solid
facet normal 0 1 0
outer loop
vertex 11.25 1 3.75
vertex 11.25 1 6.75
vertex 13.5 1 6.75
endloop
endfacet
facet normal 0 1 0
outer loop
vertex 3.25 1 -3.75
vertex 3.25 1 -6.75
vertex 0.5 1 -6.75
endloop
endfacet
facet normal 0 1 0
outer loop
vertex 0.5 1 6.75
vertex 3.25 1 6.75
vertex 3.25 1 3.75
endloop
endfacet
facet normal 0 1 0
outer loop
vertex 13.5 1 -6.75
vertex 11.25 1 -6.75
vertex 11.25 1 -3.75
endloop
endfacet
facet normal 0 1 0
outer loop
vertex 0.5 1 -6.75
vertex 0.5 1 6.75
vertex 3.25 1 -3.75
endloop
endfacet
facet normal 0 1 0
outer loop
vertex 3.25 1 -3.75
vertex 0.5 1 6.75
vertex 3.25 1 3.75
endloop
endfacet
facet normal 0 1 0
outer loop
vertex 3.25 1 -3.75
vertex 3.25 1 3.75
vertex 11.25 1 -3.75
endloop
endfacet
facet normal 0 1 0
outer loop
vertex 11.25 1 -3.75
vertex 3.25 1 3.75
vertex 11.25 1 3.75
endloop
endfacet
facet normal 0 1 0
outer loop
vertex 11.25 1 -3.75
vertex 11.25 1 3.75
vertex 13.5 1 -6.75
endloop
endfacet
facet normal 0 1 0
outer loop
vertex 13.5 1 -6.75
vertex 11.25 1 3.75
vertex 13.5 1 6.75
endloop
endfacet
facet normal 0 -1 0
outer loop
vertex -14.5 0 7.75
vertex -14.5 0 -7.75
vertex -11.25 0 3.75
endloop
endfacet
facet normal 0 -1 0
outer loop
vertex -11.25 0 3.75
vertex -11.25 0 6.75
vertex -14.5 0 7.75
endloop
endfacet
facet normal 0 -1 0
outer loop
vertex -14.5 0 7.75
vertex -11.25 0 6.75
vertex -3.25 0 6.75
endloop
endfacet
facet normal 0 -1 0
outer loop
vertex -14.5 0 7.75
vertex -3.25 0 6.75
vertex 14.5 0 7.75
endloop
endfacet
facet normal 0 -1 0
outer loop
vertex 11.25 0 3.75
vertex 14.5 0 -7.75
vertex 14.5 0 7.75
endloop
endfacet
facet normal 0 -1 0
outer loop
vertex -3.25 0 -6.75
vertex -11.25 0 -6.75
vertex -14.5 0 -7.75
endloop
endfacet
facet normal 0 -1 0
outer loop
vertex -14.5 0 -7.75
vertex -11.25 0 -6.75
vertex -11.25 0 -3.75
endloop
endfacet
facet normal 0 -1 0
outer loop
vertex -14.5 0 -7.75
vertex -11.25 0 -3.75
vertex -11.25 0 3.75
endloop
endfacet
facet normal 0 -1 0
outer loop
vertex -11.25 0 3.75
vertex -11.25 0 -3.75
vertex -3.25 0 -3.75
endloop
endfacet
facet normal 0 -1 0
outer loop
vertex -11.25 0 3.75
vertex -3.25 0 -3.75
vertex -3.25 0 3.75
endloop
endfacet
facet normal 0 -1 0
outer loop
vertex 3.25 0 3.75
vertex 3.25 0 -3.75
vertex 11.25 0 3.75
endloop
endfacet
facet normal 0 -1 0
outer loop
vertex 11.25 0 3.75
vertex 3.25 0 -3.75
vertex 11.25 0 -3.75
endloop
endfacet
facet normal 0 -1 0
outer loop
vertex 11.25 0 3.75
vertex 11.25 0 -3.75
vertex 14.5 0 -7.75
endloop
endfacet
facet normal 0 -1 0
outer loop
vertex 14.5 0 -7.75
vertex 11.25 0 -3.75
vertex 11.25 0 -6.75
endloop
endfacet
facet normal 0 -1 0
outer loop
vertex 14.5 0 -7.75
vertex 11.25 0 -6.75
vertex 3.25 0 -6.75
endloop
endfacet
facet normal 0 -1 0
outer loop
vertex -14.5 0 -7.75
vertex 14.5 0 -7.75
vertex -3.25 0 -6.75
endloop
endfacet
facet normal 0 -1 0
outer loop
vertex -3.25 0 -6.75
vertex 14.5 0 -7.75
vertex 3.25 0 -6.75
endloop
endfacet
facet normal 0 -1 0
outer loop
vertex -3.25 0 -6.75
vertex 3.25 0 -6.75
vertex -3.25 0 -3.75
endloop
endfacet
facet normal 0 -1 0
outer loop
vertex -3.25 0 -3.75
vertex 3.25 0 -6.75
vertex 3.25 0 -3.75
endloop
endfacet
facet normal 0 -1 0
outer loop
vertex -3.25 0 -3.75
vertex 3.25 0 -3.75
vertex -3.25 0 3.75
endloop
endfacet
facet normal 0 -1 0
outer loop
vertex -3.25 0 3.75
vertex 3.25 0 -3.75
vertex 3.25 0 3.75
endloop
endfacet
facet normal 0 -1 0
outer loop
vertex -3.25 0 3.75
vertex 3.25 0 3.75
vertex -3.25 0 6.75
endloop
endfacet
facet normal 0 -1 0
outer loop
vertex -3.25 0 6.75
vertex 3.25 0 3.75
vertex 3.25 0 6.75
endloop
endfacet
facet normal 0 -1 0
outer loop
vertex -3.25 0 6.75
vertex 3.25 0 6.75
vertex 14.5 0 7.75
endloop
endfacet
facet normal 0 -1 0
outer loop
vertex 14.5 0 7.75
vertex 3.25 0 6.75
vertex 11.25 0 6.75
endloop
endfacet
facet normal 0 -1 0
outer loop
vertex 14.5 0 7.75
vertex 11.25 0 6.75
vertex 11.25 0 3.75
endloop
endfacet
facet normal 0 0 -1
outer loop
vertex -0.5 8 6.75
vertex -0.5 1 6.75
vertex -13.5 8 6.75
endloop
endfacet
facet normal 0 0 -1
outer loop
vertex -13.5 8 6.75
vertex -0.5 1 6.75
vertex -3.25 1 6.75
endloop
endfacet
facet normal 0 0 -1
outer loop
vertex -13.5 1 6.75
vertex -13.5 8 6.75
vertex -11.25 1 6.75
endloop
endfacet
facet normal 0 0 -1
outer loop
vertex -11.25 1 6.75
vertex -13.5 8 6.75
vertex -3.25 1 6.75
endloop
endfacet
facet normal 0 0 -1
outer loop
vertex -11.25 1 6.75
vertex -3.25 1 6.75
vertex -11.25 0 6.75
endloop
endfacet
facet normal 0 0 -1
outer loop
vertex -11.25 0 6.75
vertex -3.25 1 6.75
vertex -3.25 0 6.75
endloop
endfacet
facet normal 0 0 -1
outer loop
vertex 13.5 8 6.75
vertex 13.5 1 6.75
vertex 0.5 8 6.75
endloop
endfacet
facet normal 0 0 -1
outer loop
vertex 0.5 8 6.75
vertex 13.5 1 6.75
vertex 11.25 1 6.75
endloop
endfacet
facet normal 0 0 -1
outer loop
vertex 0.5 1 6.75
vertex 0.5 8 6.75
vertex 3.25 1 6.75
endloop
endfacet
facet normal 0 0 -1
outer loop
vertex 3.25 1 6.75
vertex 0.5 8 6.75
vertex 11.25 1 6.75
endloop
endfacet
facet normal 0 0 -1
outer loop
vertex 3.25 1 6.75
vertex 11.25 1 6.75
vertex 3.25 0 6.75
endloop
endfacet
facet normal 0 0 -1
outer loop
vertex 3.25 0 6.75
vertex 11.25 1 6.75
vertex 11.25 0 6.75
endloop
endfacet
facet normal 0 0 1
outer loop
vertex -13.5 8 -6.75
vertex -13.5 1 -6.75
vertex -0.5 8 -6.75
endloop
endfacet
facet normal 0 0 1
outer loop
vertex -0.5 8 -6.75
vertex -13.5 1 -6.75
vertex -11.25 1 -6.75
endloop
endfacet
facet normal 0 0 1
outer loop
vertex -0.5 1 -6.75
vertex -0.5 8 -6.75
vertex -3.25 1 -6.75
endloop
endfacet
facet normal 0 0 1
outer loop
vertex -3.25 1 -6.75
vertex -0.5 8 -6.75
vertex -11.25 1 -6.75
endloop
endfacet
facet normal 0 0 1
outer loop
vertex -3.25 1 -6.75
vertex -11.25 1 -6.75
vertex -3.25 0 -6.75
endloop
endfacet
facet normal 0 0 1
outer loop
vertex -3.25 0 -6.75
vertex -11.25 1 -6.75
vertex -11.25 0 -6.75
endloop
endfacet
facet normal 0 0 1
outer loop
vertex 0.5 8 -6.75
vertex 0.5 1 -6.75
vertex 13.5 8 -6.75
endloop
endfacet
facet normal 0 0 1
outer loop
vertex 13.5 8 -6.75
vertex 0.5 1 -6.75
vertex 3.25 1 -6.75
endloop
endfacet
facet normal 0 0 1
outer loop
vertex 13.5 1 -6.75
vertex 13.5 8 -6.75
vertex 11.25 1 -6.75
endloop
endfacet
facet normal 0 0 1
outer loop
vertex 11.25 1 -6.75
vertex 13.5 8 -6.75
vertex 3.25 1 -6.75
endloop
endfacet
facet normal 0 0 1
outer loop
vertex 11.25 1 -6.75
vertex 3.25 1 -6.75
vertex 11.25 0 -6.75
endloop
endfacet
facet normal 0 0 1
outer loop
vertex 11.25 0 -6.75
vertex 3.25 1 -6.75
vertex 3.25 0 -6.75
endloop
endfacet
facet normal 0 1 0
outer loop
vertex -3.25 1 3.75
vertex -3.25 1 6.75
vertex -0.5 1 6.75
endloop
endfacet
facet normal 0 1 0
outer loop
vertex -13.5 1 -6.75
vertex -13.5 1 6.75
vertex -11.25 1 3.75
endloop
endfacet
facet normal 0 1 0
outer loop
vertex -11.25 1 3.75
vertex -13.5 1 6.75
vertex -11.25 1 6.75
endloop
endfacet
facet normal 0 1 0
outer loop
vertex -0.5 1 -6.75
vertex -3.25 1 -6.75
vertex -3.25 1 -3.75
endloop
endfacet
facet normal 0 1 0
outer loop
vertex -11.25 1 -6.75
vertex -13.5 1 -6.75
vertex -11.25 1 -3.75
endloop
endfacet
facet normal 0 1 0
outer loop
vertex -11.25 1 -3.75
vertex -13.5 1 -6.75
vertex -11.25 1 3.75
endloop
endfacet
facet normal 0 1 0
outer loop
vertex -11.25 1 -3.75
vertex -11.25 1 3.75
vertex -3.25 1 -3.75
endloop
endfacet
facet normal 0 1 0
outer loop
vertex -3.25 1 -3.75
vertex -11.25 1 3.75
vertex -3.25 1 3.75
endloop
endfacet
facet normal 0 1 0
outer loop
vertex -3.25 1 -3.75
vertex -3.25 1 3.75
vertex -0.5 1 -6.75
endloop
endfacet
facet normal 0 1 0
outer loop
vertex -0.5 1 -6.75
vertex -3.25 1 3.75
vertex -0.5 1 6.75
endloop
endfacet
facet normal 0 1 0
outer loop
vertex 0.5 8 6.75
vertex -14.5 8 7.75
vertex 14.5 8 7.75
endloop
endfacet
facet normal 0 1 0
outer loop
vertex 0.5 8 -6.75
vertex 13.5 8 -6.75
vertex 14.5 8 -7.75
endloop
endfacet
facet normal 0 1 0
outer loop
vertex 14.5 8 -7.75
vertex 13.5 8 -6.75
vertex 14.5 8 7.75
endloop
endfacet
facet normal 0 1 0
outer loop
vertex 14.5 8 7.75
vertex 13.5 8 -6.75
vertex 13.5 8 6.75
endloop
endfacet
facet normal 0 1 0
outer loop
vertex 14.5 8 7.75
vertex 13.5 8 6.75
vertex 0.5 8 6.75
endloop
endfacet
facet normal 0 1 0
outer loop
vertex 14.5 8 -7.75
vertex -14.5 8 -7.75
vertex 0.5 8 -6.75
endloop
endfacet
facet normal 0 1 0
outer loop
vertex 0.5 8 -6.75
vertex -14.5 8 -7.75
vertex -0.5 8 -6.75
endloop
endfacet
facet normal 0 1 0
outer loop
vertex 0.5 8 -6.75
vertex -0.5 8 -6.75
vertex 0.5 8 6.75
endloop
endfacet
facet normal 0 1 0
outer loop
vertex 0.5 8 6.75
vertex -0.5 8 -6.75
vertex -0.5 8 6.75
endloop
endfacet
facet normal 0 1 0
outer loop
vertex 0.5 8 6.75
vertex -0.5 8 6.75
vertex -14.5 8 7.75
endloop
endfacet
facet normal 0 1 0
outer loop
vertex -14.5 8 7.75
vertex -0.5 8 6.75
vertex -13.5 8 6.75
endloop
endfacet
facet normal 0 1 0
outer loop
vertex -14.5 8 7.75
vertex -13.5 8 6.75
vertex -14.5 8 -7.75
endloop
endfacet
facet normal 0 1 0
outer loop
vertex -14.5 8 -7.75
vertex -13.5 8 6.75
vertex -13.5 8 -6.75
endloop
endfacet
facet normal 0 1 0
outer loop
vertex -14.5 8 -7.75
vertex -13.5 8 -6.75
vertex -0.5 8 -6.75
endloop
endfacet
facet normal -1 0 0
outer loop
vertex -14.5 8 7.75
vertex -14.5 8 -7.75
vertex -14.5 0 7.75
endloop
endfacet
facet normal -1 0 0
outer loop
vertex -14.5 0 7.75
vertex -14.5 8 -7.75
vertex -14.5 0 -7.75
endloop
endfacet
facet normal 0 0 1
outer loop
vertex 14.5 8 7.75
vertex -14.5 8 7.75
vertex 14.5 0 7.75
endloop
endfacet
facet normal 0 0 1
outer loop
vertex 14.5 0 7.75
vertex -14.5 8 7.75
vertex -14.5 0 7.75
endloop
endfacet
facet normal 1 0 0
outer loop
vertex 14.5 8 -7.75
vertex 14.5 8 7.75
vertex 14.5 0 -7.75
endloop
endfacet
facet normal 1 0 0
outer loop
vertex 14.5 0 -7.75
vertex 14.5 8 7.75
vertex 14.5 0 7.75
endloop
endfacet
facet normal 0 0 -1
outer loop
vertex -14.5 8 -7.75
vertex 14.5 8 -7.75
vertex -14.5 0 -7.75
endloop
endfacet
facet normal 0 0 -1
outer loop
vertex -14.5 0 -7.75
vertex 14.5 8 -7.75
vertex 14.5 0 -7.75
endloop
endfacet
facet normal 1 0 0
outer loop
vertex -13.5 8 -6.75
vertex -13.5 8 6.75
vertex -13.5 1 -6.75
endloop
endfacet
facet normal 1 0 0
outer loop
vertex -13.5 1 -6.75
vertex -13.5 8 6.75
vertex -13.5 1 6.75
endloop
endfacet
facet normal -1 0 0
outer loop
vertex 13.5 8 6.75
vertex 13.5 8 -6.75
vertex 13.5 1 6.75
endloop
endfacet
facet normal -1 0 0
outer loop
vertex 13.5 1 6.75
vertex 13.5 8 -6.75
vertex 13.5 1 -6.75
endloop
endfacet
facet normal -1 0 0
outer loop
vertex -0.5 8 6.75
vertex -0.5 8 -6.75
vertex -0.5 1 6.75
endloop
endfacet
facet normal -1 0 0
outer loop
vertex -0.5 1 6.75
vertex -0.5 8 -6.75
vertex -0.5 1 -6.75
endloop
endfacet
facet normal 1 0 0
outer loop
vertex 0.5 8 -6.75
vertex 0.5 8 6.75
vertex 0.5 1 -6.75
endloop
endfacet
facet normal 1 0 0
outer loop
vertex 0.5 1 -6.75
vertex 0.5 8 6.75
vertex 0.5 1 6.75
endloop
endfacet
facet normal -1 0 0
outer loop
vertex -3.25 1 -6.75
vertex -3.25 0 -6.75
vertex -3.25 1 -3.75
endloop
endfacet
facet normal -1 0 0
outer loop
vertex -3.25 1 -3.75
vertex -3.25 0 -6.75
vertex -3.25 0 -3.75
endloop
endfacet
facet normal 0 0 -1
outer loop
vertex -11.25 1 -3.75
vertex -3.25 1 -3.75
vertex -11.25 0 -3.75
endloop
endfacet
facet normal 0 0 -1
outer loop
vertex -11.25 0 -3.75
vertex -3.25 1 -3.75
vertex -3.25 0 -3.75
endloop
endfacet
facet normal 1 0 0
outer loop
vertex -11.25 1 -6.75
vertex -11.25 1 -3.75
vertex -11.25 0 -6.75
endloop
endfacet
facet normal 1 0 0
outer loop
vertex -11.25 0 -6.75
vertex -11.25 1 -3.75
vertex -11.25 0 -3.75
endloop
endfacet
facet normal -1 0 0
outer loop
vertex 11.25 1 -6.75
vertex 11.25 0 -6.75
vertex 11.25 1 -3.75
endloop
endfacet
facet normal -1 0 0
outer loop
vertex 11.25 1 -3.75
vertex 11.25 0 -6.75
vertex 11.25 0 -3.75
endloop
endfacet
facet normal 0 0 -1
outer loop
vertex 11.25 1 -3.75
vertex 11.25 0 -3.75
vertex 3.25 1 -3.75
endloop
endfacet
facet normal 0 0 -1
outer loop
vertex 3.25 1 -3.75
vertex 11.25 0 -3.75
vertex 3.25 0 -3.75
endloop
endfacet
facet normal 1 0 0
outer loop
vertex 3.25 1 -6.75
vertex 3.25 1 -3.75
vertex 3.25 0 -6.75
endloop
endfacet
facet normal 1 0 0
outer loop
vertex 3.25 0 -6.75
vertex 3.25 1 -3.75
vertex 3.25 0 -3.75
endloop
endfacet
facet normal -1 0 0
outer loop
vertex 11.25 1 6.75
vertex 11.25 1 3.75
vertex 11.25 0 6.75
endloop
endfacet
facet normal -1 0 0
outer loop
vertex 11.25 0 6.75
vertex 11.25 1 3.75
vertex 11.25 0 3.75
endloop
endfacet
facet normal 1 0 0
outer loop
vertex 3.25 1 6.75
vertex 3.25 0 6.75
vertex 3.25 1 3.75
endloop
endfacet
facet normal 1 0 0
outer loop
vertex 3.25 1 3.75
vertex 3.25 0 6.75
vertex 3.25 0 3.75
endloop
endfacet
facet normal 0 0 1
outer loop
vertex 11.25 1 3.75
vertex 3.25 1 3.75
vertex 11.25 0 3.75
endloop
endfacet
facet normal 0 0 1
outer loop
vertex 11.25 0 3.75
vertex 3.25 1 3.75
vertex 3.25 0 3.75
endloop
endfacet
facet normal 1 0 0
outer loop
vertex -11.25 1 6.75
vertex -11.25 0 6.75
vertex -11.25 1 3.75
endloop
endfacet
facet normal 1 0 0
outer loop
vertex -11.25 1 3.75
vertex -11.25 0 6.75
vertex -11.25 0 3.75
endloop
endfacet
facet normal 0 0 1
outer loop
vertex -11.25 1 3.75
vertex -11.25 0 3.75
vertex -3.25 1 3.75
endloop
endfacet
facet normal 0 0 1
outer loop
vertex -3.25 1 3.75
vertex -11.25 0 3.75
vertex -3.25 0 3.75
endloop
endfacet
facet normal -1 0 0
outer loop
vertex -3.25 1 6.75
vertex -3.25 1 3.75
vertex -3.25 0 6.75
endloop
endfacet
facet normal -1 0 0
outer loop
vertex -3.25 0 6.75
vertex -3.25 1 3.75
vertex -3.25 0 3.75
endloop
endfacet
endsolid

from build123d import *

# Parameters (mm, degrees)
SKETCH1_W           = 29
SKETCH1_H           = 15.5
BOSS_EXTRUDE1_DEPTH = 8
SHELL1_T            = -1
SKETCH2_W           = 1
SKETCH2_H           = 13.5
BOSS_EXTRUDE2_DEPTH = 7
SKETCH3_W           = 8
SKETCH3_H           = 3
CUT_EXTRUDE1_DEPTH  = 7


with BuildPart() as part:
    # Sketch1 → Boss-Extrude1 (new body)
    with BuildSketch(Plane(origin=(0, 0, 0), x_dir=(1, 0, 0), z_dir=(0, 1, 0))):
        Rectangle(SKETCH1_W, SKETCH1_H)
    extrude(amount=BOSS_EXTRUDE1_DEPTH)

    # Shell1
    shell1_openings = [part.faces().sort_by_distance(p)[0] for p in [
        (0, 8, 0),
    ]]
    offset(amount=SHELL1_T, openings=shell1_openings, kind=Kind.INTERSECTION)

    # Sketch2 → Boss-Extrude2 (add)
    with BuildSketch(Plane(origin=(0, 1, 0), x_dir=(1, 0, 0), z_dir=(0, 1, 0))):
        Rectangle(SKETCH2_W, SKETCH2_H)
    extrude(amount=BOSS_EXTRUDE2_DEPTH)

    # Sketch3 → Cut-Extrude1 (cut)
    with BuildSketch(Plane(origin=(0, 1, 0), x_dir=(1, 0, 0), z_dir=(0, 1, 0))):
        with Locations((-7.25, 5.25)):
            Rectangle(SKETCH3_W, SKETCH3_H)
        with Locations((7.25, 5.25)):
            Rectangle(SKETCH3_W, SKETCH3_H)
        with Locations((7.25, -5.25)):
            Rectangle(SKETCH3_W, SKETCH3_H)
        with Locations((-7.25, -5.25)):
            Rectangle(SKETCH3_W, SKETCH3_H)
    extrude(amount=-CUT_EXTRUDE1_DEPTH, mode=Mode.SUBTRACT)


solid = part.part
